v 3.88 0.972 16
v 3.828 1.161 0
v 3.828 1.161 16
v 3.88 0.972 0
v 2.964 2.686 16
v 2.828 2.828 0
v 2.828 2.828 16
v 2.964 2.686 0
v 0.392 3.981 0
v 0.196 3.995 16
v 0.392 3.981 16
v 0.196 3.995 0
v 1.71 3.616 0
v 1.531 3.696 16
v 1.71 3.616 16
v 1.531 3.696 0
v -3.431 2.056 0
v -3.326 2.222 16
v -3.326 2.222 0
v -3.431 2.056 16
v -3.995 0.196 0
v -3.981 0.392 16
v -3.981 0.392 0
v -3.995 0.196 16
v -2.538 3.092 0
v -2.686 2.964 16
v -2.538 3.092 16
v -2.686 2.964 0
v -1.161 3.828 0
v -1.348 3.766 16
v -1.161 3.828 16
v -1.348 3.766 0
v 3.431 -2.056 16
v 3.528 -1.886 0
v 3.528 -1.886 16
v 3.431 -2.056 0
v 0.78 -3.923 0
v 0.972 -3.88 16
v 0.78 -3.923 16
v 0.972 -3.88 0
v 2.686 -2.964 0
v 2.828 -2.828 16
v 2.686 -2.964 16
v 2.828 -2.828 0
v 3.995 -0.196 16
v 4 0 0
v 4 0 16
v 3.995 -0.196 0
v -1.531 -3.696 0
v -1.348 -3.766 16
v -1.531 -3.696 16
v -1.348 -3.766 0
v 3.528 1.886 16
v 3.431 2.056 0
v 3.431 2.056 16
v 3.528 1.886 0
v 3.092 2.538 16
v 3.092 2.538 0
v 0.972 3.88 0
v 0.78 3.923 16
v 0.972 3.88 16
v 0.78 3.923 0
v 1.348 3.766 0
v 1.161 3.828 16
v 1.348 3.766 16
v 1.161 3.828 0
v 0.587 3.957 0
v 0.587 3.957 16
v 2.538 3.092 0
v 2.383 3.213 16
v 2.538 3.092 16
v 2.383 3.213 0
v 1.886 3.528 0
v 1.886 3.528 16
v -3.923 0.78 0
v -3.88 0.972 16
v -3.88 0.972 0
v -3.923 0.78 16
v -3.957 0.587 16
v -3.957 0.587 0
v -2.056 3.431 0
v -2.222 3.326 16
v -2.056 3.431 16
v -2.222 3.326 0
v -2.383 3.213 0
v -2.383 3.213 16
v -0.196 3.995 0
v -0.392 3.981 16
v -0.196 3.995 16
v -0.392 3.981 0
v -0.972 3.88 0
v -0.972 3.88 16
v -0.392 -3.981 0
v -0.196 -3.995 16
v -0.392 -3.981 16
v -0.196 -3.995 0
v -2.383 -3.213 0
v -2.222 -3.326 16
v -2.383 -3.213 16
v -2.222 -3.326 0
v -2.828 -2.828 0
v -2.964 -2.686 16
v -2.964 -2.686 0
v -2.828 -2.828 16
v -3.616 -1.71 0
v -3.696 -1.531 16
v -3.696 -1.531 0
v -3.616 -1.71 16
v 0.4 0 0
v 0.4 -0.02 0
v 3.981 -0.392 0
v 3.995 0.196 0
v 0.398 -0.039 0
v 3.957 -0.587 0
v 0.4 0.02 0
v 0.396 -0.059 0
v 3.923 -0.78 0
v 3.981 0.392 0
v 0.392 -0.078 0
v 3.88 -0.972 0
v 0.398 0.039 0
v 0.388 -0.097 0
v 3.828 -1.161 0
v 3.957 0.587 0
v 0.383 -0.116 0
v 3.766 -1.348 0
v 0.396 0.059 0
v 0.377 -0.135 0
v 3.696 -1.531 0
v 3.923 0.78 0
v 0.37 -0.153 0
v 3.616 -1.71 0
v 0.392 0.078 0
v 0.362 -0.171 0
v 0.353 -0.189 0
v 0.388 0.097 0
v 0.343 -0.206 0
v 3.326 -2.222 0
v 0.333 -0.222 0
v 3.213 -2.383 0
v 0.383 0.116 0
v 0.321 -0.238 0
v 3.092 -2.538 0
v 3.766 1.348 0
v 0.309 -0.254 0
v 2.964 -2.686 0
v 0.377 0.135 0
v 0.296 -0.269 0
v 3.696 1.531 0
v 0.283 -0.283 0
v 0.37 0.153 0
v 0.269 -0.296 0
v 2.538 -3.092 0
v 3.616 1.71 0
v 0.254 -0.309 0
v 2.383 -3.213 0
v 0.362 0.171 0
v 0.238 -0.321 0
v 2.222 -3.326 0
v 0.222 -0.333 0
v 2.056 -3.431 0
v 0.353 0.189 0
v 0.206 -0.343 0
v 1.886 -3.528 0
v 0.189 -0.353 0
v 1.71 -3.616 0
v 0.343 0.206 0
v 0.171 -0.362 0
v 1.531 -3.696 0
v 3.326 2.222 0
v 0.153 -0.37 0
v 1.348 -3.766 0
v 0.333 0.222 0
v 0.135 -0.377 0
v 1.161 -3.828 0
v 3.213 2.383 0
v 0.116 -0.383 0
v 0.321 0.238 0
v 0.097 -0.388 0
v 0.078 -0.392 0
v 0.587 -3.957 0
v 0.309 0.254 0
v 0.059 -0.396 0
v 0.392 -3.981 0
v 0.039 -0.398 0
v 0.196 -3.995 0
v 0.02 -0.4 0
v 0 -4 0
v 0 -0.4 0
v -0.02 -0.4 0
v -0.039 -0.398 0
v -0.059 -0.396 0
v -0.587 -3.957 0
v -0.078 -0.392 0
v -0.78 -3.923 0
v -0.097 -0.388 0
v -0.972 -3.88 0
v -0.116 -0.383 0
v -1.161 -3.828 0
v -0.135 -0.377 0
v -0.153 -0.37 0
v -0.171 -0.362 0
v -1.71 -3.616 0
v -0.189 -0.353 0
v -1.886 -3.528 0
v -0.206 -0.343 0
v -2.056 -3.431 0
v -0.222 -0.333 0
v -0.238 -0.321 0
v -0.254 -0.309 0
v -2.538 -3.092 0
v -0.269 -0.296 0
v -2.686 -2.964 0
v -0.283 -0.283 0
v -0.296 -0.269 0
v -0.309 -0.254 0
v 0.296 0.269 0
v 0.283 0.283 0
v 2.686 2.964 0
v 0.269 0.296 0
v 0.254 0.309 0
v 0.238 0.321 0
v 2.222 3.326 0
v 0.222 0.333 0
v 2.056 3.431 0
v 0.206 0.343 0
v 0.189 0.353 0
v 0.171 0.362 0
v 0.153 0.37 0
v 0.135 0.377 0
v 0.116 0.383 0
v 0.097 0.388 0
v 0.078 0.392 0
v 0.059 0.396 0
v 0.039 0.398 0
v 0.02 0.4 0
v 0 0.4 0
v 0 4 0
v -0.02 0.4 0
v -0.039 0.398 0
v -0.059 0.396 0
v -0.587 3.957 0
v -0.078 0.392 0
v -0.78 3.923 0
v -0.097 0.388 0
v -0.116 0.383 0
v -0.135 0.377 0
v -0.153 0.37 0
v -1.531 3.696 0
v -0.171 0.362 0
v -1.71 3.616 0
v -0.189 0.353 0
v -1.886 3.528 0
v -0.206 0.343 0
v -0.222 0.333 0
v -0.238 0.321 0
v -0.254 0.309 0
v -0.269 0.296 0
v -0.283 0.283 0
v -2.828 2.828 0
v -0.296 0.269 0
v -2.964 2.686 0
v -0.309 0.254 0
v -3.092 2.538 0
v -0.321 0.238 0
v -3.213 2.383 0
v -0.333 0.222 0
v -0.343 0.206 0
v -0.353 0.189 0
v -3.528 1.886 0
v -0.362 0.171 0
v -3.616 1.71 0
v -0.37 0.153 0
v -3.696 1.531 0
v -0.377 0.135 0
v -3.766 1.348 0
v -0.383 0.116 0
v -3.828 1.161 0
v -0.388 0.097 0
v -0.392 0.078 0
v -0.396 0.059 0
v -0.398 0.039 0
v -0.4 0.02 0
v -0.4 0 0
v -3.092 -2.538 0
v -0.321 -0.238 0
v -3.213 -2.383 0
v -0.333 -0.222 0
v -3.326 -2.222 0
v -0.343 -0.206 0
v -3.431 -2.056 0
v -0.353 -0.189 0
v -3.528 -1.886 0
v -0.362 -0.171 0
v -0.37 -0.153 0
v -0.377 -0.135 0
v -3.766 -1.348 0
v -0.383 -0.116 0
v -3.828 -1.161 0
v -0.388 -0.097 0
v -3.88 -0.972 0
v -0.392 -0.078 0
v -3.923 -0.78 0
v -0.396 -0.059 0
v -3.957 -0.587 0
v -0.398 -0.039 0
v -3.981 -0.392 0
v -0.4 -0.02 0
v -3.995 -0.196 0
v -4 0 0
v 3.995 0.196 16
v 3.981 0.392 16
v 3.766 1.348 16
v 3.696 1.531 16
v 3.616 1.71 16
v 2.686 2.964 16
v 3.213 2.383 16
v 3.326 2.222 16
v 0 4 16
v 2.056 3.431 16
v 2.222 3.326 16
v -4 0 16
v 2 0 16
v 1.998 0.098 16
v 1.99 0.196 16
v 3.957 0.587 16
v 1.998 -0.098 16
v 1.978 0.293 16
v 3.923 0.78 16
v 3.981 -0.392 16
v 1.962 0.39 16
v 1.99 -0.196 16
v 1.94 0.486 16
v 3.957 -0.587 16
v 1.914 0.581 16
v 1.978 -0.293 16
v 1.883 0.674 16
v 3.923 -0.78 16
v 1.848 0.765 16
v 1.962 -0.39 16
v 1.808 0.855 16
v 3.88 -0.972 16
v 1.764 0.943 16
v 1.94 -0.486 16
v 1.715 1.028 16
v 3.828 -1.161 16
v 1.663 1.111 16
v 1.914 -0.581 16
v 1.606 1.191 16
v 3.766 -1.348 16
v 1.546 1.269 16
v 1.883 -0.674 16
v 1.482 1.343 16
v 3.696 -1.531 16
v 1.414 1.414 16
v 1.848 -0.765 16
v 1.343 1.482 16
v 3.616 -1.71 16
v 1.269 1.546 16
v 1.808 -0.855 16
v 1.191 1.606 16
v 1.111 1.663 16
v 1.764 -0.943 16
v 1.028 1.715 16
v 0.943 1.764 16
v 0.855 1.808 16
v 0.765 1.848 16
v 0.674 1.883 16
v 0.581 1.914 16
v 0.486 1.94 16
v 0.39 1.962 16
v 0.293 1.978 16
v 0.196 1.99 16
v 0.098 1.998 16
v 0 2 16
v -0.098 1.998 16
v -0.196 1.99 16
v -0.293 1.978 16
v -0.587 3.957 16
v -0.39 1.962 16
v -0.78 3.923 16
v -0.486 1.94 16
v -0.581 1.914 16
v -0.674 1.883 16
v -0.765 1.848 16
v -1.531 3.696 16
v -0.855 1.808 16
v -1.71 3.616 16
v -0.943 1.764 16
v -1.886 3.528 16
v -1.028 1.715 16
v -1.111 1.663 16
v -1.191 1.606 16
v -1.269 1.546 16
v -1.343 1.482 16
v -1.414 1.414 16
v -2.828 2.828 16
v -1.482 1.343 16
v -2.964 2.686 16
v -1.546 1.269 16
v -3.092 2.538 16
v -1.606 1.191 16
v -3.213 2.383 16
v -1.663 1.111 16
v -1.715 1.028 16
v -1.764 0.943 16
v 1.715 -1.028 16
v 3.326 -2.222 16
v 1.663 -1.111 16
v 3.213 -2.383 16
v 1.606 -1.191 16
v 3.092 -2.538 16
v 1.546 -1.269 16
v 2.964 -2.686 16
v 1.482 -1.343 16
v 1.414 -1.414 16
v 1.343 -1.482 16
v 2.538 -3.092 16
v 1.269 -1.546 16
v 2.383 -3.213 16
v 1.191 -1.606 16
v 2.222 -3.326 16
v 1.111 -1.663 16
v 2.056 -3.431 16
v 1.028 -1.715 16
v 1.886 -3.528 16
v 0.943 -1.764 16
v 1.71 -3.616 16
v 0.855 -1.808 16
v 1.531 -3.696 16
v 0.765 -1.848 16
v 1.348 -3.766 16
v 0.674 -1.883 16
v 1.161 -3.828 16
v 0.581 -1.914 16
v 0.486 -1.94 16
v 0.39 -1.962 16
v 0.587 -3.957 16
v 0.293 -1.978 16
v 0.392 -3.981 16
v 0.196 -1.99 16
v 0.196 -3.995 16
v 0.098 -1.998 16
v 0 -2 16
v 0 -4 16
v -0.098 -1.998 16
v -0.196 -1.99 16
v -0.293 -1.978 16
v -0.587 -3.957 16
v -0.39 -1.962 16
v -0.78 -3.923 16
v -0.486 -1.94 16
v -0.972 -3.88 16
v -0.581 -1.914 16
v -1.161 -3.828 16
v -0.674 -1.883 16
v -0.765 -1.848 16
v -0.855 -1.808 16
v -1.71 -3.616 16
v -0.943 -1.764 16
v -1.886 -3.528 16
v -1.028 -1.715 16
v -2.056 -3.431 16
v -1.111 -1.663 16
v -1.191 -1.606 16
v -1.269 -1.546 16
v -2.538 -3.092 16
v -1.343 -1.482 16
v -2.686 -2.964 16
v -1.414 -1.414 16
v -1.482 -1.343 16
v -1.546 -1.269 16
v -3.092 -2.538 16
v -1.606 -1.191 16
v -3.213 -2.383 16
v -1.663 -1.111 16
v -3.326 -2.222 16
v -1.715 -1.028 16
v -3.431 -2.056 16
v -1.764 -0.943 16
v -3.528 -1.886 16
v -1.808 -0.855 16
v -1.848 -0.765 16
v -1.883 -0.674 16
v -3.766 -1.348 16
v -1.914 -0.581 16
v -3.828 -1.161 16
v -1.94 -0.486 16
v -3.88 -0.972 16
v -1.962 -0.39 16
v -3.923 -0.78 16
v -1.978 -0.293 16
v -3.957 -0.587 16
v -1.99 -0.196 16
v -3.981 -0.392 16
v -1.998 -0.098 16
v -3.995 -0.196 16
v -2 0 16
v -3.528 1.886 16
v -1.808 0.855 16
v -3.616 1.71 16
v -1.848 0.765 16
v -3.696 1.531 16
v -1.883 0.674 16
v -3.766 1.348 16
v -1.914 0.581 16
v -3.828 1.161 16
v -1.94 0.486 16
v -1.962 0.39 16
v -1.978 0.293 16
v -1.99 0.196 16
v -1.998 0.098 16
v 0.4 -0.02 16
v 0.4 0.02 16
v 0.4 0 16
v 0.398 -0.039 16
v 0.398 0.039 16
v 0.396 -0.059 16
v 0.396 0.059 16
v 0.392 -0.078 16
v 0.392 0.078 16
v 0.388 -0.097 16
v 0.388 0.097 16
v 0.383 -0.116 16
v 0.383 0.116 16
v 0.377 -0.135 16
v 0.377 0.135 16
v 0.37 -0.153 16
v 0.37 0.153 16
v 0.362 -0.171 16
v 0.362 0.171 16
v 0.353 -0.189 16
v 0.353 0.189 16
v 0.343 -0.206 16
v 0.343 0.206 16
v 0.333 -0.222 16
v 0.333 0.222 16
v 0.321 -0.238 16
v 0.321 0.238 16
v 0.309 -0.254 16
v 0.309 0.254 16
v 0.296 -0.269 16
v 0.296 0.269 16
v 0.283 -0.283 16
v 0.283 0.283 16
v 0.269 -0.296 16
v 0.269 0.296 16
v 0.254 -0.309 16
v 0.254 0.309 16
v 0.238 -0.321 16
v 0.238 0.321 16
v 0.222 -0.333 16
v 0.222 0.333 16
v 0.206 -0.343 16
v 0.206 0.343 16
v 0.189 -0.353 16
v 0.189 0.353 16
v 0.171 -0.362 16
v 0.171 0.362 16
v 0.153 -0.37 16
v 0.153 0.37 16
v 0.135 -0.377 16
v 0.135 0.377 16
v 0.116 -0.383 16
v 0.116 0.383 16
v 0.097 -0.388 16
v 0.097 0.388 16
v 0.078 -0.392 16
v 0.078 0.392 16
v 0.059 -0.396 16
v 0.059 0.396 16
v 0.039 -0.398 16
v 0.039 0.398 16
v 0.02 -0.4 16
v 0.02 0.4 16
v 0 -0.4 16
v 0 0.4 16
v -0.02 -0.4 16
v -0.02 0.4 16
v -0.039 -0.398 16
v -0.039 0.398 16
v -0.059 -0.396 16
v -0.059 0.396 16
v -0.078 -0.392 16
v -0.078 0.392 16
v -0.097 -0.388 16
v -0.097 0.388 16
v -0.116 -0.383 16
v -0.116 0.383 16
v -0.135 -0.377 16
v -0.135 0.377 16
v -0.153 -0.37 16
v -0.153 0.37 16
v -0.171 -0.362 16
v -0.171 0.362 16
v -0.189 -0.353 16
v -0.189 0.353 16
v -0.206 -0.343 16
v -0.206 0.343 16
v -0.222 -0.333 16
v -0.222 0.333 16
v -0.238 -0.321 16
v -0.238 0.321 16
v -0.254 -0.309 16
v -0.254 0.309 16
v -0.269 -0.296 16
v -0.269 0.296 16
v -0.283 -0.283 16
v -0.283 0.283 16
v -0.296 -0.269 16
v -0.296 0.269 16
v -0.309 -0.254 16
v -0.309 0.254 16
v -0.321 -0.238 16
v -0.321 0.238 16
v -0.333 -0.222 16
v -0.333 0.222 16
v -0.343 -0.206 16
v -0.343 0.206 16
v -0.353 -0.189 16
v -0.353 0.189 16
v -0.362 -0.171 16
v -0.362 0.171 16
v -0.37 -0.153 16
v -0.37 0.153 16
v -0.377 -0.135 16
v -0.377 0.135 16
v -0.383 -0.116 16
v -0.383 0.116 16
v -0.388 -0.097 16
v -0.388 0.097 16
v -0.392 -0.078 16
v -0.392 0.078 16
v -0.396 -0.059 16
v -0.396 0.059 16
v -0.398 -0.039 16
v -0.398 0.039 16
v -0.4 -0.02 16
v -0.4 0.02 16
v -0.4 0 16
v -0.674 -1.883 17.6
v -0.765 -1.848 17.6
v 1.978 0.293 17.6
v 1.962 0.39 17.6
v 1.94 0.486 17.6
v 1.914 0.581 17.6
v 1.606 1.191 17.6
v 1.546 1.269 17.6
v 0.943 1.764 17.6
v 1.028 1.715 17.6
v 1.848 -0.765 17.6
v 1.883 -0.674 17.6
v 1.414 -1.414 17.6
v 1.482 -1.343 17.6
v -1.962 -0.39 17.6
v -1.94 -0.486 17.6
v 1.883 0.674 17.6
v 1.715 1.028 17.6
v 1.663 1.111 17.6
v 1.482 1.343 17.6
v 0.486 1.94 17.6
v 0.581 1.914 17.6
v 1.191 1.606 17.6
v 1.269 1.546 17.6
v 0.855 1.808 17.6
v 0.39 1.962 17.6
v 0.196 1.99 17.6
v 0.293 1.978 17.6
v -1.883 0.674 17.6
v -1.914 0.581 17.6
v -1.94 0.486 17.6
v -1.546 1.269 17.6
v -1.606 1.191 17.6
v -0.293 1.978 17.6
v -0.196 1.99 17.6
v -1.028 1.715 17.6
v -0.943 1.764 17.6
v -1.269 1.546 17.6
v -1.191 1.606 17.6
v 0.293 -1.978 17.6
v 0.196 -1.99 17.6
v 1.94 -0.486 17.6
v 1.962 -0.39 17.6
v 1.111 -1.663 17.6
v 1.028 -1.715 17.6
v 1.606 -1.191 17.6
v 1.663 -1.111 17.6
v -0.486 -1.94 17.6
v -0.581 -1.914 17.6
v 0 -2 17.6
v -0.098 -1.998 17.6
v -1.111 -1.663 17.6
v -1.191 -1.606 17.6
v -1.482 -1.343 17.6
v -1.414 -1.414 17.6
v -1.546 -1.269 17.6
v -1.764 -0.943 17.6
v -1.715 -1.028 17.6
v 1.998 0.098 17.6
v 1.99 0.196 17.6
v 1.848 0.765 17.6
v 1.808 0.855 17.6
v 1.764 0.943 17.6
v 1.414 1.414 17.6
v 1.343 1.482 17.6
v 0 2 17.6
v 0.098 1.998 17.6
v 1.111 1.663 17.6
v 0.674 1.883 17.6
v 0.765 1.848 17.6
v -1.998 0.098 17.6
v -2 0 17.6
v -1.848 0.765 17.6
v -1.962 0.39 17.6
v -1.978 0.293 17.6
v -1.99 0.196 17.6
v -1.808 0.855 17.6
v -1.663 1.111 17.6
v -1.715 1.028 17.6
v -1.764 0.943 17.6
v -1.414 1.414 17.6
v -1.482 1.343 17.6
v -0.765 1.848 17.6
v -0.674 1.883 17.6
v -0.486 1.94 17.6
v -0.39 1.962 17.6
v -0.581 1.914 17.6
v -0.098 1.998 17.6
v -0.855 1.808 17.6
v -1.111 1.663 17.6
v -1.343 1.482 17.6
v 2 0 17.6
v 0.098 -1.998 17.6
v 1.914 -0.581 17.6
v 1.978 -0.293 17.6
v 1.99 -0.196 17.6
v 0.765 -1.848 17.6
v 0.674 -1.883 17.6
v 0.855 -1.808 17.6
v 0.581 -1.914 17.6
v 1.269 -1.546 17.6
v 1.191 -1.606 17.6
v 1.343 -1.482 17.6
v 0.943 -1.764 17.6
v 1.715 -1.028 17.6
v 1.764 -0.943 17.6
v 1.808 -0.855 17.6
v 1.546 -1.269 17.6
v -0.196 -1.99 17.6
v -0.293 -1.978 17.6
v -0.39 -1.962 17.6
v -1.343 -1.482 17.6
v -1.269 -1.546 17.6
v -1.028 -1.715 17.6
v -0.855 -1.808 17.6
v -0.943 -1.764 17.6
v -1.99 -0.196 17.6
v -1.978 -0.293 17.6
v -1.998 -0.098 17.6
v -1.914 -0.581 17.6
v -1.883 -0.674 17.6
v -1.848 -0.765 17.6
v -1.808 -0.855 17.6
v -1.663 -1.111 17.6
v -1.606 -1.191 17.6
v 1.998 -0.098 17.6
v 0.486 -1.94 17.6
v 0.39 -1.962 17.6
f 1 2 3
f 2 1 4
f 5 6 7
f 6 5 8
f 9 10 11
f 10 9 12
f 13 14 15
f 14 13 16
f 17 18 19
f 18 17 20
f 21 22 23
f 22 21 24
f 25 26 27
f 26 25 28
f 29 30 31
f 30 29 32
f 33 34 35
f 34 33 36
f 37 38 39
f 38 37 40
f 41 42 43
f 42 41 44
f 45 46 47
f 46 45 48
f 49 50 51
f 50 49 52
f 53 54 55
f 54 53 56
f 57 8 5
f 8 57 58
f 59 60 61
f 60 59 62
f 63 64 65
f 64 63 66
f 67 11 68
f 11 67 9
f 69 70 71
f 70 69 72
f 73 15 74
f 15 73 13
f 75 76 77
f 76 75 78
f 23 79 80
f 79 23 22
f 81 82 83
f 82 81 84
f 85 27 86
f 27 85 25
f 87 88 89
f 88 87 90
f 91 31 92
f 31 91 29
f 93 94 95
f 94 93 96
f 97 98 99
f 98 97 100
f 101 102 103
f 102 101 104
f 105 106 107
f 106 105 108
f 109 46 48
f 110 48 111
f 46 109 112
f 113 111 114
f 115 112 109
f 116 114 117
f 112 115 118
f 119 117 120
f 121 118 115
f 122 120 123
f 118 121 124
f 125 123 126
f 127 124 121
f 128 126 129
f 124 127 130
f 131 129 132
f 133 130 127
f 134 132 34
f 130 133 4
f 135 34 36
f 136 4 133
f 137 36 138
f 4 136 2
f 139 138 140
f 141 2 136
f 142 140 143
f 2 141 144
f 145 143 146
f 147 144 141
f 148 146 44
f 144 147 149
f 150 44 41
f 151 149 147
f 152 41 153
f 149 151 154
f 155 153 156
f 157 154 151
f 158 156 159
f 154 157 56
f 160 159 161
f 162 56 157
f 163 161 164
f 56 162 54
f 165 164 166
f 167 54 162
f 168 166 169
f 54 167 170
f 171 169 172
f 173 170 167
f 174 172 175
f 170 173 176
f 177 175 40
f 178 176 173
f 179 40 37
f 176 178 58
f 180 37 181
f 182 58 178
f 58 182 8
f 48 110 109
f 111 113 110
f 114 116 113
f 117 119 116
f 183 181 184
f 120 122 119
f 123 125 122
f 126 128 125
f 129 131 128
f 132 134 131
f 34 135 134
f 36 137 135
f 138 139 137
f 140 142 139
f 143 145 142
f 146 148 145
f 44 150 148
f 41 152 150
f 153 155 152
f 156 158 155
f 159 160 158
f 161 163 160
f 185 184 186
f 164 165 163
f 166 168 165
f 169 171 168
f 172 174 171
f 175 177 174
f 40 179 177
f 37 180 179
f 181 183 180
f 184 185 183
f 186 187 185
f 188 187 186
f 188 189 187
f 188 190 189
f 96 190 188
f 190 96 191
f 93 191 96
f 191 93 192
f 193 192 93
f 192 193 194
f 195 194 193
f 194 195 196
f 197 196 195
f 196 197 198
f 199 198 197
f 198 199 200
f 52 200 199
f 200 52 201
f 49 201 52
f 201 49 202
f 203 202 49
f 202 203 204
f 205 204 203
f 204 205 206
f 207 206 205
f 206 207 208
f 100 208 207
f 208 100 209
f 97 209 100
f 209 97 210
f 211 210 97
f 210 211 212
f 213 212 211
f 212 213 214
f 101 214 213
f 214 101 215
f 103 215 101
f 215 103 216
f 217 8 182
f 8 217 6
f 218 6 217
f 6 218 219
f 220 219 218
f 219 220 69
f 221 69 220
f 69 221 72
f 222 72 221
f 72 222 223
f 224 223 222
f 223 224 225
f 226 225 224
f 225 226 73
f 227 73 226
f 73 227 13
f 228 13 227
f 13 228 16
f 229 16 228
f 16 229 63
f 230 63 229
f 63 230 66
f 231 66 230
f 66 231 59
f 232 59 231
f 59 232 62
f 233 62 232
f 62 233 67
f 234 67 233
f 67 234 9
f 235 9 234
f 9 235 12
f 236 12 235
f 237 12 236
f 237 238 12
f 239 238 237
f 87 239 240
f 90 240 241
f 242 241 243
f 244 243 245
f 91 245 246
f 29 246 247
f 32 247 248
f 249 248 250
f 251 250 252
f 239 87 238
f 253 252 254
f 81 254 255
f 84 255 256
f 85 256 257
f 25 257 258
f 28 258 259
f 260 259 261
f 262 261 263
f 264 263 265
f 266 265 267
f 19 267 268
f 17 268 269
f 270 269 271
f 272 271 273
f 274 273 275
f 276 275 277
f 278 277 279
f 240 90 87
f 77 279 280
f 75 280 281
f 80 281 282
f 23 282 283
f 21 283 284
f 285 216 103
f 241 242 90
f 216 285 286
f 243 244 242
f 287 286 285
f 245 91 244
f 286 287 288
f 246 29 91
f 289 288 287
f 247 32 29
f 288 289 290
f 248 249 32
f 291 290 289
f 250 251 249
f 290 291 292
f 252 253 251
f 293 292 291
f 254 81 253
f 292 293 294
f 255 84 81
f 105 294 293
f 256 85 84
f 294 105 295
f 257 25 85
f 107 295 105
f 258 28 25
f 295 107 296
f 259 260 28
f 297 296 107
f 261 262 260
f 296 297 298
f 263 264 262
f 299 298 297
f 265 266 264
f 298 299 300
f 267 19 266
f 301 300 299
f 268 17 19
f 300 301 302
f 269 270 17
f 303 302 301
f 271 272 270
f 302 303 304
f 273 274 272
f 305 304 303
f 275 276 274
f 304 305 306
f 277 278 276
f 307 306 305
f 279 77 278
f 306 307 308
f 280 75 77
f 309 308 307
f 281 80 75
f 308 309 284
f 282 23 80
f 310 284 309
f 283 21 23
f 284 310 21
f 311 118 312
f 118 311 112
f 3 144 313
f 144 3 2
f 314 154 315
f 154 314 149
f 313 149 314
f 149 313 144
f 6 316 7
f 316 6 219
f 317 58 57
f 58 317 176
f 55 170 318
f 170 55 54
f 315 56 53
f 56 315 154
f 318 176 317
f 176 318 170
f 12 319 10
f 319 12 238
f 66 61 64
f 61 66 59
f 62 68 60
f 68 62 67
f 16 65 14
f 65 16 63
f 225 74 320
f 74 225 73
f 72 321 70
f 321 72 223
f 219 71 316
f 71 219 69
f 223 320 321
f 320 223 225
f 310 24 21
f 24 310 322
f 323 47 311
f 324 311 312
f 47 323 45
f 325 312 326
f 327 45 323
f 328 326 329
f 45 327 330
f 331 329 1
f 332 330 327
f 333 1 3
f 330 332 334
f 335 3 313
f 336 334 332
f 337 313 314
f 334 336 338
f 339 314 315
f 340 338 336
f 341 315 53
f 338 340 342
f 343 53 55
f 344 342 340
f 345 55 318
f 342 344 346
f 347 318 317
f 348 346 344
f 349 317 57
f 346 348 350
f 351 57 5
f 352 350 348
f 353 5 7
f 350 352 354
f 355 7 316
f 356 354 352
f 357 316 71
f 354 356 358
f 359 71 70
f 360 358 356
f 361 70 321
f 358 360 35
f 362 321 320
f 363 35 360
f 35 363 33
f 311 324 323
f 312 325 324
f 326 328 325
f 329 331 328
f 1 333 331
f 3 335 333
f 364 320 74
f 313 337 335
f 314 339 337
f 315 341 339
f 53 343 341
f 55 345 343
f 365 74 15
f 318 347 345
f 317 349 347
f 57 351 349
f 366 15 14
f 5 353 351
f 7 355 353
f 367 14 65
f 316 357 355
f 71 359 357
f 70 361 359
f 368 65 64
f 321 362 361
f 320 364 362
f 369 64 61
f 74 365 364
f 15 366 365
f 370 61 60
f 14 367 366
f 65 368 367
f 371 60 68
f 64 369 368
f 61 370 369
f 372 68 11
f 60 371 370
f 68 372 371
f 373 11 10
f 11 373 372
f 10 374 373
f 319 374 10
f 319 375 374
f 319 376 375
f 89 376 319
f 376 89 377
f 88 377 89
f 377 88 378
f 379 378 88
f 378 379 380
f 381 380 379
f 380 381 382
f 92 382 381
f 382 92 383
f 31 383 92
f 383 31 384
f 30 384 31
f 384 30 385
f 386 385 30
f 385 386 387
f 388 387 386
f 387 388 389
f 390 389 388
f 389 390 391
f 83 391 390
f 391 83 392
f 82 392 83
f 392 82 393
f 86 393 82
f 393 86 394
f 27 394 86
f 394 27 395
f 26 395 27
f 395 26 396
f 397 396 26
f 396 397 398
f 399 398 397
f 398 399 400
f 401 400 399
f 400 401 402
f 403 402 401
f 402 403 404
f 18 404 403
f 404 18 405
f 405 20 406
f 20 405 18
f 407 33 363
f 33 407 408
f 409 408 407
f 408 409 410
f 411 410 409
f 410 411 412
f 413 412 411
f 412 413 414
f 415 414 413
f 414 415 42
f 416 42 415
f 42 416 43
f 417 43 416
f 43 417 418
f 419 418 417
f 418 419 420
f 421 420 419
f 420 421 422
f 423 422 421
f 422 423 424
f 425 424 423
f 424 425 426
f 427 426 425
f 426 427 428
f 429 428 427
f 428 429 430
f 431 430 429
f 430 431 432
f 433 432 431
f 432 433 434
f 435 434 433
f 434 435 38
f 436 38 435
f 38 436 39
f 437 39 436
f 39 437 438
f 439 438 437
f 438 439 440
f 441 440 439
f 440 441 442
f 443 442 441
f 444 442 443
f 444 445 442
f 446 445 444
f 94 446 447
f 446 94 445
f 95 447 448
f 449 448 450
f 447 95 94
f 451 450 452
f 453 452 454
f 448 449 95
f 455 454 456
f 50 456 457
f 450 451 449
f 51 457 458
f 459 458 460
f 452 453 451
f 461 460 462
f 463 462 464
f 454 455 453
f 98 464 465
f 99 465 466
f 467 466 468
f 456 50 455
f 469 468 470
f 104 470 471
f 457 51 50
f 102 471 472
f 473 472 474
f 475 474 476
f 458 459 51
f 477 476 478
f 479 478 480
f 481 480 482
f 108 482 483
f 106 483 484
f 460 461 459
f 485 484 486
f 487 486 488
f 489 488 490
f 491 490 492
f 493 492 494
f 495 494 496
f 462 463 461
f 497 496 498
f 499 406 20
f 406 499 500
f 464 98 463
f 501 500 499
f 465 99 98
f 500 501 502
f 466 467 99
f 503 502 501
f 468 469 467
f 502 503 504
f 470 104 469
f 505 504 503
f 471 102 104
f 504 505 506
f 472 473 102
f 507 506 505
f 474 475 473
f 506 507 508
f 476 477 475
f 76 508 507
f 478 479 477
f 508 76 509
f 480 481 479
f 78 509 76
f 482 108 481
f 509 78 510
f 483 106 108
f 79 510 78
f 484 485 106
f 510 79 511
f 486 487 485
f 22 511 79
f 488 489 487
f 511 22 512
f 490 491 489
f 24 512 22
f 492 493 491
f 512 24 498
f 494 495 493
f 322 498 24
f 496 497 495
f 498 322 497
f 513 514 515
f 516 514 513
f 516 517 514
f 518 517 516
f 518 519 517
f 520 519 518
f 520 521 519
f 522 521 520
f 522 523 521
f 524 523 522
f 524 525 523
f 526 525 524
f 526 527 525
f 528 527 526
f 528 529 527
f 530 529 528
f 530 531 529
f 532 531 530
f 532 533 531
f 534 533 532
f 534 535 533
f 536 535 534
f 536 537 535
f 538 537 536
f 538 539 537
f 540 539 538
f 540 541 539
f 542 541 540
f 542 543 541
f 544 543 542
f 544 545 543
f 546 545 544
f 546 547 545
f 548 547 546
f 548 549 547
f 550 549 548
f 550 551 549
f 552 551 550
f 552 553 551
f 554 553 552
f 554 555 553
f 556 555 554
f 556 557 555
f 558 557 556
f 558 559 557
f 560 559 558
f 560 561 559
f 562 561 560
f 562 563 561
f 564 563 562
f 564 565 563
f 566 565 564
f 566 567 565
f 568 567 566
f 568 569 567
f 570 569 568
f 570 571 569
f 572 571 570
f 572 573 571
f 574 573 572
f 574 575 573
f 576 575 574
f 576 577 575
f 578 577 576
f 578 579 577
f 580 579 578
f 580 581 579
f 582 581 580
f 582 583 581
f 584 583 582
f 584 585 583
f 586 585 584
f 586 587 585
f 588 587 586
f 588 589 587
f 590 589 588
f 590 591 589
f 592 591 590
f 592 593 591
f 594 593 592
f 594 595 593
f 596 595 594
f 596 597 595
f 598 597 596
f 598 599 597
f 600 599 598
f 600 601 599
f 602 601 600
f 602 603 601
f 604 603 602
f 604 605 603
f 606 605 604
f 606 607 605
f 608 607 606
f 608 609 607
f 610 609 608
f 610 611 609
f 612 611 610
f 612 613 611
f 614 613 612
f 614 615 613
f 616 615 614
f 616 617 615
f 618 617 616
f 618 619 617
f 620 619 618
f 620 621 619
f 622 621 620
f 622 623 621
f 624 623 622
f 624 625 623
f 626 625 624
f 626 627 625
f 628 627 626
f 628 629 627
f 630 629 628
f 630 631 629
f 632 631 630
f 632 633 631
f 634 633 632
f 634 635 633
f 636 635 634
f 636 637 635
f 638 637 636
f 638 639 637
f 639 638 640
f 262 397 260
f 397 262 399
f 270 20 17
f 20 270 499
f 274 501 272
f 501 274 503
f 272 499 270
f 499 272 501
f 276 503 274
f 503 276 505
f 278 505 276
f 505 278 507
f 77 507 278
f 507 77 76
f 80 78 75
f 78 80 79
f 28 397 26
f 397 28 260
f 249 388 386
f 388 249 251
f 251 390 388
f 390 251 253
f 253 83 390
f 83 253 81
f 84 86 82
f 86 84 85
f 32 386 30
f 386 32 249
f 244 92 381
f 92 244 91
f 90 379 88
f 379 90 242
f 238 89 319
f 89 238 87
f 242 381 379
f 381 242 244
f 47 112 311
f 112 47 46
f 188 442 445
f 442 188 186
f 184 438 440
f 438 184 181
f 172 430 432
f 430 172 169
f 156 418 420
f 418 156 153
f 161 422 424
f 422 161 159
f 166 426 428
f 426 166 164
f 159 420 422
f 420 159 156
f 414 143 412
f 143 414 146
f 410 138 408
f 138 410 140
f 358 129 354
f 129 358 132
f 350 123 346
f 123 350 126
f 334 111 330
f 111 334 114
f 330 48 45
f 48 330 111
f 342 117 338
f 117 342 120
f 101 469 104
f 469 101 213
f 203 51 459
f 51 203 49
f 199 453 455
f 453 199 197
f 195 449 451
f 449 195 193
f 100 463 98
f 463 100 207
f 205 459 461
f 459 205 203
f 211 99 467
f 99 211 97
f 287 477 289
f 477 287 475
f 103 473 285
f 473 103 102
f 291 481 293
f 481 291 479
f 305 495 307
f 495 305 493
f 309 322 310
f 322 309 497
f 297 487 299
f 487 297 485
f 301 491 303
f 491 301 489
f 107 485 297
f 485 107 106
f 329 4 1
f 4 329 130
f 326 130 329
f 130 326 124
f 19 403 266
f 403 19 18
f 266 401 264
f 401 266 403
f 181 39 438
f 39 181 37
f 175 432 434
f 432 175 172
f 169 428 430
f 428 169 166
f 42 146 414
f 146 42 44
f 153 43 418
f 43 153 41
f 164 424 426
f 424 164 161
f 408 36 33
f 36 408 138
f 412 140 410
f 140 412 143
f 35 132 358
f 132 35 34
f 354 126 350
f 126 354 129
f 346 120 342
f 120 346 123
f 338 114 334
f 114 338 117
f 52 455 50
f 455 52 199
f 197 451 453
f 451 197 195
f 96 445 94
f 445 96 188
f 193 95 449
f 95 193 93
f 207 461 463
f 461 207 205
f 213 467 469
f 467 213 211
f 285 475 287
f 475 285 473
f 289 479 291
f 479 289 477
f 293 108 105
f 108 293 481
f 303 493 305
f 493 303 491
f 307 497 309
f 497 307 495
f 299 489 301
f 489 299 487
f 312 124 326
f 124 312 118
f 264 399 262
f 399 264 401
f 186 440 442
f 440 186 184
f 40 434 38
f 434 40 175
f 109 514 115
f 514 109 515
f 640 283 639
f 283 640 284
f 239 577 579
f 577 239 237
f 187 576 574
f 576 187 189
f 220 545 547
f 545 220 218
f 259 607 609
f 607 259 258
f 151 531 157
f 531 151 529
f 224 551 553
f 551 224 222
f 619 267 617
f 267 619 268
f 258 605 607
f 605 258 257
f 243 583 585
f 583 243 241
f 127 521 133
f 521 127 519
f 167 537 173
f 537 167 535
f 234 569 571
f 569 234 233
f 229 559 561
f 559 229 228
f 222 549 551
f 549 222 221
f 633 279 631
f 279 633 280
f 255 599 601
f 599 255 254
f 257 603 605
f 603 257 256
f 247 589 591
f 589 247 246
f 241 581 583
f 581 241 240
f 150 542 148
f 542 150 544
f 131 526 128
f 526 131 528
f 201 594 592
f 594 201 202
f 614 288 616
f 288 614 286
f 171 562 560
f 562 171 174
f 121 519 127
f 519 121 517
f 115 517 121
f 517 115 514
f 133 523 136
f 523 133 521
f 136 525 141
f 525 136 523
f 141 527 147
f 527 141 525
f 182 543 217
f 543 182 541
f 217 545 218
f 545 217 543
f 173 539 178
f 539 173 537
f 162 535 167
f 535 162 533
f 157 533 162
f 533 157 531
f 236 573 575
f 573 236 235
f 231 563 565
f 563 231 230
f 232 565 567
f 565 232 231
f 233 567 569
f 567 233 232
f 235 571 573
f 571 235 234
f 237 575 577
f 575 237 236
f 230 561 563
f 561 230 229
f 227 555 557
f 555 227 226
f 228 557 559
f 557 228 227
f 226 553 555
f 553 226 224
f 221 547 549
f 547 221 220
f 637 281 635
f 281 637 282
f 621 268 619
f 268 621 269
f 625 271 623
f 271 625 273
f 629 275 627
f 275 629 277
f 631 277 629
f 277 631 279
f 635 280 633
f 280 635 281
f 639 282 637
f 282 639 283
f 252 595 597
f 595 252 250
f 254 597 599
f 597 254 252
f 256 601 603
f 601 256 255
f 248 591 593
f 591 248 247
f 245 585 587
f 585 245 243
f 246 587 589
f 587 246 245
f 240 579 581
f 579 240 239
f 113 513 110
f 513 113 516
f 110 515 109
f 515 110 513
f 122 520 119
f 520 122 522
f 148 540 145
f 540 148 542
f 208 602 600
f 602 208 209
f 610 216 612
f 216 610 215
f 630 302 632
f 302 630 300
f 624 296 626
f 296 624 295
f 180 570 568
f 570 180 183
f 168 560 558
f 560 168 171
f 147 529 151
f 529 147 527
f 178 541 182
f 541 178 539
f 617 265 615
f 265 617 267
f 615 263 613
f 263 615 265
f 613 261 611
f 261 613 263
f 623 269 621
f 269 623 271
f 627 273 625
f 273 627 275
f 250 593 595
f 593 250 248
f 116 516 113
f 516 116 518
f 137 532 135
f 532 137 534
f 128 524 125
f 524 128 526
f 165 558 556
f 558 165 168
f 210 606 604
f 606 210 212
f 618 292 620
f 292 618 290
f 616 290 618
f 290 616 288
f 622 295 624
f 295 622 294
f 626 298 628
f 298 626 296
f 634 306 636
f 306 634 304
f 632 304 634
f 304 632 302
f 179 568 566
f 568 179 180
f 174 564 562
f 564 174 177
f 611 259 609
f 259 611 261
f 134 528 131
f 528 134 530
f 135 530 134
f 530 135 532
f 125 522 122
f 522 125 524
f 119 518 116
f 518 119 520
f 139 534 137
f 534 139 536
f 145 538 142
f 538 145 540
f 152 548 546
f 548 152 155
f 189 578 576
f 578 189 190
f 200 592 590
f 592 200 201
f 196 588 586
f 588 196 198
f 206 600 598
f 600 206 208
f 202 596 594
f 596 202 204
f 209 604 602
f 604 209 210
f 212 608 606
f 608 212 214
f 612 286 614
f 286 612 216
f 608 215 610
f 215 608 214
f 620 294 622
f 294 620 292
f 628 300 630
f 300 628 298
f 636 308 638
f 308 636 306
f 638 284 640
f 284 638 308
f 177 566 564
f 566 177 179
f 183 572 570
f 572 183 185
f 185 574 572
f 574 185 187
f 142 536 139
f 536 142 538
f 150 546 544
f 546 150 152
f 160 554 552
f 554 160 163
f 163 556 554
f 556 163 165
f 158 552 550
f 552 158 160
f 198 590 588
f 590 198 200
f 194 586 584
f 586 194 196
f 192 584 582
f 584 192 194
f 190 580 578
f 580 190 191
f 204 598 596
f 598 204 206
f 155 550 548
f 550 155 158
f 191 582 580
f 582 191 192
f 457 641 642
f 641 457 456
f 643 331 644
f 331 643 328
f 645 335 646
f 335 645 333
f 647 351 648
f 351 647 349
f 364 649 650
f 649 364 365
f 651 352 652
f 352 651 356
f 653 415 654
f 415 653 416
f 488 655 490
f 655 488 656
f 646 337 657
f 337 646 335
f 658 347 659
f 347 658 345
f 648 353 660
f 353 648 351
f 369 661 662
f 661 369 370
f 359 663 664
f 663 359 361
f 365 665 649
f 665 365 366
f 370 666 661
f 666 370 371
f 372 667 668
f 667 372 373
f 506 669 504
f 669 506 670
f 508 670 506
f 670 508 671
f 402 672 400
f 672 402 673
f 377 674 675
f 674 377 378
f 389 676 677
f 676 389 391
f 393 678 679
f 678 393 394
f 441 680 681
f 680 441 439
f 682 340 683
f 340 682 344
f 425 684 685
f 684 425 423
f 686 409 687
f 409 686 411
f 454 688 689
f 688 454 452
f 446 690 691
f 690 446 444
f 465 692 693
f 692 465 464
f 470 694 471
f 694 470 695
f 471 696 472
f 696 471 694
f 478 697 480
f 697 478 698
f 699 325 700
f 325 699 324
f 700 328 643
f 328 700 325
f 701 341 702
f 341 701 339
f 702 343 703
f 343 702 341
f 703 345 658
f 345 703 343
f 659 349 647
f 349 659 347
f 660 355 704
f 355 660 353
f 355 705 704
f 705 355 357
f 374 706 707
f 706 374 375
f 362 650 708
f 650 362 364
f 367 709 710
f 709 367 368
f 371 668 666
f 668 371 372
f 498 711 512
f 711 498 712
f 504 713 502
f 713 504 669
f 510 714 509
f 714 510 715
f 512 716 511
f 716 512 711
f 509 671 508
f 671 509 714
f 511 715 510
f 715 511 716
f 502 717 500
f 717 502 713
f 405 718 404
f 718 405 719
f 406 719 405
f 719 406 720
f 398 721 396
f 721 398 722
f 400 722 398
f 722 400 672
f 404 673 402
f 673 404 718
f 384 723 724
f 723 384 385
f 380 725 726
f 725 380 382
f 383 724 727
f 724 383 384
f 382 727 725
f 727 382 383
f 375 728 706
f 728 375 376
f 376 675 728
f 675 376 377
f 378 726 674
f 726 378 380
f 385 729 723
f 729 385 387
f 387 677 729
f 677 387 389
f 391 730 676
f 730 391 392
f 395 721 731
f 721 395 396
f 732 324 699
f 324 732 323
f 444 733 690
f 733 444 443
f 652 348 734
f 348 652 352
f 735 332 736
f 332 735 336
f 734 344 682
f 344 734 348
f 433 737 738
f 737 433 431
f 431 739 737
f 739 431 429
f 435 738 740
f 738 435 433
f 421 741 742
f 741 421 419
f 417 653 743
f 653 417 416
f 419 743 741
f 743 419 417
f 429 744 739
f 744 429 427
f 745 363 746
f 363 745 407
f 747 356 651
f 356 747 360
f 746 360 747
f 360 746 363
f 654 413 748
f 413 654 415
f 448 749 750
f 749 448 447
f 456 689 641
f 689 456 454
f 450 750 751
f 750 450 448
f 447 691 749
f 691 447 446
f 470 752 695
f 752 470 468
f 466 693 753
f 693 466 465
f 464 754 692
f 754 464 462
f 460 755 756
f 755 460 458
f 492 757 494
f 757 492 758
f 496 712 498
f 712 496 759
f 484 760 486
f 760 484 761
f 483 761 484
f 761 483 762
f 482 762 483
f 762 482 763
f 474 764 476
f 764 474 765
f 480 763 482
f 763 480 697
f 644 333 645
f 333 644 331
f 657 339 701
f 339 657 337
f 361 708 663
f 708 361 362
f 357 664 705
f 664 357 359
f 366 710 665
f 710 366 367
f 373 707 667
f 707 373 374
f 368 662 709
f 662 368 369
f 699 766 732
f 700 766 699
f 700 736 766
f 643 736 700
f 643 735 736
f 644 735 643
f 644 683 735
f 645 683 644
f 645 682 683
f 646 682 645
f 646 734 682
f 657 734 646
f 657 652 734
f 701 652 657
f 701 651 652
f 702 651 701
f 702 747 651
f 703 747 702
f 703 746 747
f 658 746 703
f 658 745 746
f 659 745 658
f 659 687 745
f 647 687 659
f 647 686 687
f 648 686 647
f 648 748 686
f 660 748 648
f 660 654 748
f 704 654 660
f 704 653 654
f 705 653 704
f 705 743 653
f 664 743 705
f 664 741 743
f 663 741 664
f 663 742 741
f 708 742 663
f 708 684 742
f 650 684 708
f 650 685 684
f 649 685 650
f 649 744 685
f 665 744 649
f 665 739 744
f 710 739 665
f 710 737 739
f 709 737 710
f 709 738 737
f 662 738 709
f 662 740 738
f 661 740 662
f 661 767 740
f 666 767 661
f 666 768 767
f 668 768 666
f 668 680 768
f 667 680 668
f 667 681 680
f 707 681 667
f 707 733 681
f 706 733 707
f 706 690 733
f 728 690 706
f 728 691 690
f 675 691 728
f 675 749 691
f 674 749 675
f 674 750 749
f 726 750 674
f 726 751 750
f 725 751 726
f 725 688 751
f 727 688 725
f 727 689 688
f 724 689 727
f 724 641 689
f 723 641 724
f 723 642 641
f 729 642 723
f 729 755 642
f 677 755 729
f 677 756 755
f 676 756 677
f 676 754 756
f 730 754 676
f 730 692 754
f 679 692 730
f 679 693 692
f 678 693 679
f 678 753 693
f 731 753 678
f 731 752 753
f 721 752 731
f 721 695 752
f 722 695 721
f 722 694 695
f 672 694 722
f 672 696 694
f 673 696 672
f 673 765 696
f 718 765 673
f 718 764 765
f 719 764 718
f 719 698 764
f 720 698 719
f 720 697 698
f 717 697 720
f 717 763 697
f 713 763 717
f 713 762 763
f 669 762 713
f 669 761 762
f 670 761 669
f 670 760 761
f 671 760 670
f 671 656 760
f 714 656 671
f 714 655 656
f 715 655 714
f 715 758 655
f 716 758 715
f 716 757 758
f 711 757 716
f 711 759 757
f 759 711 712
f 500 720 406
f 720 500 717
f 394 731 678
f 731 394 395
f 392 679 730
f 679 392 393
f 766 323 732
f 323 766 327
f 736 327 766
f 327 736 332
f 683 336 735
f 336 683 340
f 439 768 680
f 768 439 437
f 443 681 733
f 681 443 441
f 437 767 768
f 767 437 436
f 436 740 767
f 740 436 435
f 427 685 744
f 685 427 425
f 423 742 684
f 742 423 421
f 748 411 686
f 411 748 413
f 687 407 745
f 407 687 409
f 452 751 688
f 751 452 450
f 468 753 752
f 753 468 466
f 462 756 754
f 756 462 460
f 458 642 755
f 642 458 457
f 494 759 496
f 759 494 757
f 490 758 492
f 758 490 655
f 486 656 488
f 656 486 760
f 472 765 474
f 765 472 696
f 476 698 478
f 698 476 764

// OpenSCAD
// Generated by SolidPython 1.1.3 on 2023-04-08 02:27:49
$fn =128;


union() {
	difference() {
		cylinder(h = 16, r = 4.0000000000);
		cylinder(h = 16, r = 0.4000000000);
	}
	translate(v = [0, 0, 16]) {
		cylinder(h = 1.6000000000, r = 2.0000000000);
	}
}
